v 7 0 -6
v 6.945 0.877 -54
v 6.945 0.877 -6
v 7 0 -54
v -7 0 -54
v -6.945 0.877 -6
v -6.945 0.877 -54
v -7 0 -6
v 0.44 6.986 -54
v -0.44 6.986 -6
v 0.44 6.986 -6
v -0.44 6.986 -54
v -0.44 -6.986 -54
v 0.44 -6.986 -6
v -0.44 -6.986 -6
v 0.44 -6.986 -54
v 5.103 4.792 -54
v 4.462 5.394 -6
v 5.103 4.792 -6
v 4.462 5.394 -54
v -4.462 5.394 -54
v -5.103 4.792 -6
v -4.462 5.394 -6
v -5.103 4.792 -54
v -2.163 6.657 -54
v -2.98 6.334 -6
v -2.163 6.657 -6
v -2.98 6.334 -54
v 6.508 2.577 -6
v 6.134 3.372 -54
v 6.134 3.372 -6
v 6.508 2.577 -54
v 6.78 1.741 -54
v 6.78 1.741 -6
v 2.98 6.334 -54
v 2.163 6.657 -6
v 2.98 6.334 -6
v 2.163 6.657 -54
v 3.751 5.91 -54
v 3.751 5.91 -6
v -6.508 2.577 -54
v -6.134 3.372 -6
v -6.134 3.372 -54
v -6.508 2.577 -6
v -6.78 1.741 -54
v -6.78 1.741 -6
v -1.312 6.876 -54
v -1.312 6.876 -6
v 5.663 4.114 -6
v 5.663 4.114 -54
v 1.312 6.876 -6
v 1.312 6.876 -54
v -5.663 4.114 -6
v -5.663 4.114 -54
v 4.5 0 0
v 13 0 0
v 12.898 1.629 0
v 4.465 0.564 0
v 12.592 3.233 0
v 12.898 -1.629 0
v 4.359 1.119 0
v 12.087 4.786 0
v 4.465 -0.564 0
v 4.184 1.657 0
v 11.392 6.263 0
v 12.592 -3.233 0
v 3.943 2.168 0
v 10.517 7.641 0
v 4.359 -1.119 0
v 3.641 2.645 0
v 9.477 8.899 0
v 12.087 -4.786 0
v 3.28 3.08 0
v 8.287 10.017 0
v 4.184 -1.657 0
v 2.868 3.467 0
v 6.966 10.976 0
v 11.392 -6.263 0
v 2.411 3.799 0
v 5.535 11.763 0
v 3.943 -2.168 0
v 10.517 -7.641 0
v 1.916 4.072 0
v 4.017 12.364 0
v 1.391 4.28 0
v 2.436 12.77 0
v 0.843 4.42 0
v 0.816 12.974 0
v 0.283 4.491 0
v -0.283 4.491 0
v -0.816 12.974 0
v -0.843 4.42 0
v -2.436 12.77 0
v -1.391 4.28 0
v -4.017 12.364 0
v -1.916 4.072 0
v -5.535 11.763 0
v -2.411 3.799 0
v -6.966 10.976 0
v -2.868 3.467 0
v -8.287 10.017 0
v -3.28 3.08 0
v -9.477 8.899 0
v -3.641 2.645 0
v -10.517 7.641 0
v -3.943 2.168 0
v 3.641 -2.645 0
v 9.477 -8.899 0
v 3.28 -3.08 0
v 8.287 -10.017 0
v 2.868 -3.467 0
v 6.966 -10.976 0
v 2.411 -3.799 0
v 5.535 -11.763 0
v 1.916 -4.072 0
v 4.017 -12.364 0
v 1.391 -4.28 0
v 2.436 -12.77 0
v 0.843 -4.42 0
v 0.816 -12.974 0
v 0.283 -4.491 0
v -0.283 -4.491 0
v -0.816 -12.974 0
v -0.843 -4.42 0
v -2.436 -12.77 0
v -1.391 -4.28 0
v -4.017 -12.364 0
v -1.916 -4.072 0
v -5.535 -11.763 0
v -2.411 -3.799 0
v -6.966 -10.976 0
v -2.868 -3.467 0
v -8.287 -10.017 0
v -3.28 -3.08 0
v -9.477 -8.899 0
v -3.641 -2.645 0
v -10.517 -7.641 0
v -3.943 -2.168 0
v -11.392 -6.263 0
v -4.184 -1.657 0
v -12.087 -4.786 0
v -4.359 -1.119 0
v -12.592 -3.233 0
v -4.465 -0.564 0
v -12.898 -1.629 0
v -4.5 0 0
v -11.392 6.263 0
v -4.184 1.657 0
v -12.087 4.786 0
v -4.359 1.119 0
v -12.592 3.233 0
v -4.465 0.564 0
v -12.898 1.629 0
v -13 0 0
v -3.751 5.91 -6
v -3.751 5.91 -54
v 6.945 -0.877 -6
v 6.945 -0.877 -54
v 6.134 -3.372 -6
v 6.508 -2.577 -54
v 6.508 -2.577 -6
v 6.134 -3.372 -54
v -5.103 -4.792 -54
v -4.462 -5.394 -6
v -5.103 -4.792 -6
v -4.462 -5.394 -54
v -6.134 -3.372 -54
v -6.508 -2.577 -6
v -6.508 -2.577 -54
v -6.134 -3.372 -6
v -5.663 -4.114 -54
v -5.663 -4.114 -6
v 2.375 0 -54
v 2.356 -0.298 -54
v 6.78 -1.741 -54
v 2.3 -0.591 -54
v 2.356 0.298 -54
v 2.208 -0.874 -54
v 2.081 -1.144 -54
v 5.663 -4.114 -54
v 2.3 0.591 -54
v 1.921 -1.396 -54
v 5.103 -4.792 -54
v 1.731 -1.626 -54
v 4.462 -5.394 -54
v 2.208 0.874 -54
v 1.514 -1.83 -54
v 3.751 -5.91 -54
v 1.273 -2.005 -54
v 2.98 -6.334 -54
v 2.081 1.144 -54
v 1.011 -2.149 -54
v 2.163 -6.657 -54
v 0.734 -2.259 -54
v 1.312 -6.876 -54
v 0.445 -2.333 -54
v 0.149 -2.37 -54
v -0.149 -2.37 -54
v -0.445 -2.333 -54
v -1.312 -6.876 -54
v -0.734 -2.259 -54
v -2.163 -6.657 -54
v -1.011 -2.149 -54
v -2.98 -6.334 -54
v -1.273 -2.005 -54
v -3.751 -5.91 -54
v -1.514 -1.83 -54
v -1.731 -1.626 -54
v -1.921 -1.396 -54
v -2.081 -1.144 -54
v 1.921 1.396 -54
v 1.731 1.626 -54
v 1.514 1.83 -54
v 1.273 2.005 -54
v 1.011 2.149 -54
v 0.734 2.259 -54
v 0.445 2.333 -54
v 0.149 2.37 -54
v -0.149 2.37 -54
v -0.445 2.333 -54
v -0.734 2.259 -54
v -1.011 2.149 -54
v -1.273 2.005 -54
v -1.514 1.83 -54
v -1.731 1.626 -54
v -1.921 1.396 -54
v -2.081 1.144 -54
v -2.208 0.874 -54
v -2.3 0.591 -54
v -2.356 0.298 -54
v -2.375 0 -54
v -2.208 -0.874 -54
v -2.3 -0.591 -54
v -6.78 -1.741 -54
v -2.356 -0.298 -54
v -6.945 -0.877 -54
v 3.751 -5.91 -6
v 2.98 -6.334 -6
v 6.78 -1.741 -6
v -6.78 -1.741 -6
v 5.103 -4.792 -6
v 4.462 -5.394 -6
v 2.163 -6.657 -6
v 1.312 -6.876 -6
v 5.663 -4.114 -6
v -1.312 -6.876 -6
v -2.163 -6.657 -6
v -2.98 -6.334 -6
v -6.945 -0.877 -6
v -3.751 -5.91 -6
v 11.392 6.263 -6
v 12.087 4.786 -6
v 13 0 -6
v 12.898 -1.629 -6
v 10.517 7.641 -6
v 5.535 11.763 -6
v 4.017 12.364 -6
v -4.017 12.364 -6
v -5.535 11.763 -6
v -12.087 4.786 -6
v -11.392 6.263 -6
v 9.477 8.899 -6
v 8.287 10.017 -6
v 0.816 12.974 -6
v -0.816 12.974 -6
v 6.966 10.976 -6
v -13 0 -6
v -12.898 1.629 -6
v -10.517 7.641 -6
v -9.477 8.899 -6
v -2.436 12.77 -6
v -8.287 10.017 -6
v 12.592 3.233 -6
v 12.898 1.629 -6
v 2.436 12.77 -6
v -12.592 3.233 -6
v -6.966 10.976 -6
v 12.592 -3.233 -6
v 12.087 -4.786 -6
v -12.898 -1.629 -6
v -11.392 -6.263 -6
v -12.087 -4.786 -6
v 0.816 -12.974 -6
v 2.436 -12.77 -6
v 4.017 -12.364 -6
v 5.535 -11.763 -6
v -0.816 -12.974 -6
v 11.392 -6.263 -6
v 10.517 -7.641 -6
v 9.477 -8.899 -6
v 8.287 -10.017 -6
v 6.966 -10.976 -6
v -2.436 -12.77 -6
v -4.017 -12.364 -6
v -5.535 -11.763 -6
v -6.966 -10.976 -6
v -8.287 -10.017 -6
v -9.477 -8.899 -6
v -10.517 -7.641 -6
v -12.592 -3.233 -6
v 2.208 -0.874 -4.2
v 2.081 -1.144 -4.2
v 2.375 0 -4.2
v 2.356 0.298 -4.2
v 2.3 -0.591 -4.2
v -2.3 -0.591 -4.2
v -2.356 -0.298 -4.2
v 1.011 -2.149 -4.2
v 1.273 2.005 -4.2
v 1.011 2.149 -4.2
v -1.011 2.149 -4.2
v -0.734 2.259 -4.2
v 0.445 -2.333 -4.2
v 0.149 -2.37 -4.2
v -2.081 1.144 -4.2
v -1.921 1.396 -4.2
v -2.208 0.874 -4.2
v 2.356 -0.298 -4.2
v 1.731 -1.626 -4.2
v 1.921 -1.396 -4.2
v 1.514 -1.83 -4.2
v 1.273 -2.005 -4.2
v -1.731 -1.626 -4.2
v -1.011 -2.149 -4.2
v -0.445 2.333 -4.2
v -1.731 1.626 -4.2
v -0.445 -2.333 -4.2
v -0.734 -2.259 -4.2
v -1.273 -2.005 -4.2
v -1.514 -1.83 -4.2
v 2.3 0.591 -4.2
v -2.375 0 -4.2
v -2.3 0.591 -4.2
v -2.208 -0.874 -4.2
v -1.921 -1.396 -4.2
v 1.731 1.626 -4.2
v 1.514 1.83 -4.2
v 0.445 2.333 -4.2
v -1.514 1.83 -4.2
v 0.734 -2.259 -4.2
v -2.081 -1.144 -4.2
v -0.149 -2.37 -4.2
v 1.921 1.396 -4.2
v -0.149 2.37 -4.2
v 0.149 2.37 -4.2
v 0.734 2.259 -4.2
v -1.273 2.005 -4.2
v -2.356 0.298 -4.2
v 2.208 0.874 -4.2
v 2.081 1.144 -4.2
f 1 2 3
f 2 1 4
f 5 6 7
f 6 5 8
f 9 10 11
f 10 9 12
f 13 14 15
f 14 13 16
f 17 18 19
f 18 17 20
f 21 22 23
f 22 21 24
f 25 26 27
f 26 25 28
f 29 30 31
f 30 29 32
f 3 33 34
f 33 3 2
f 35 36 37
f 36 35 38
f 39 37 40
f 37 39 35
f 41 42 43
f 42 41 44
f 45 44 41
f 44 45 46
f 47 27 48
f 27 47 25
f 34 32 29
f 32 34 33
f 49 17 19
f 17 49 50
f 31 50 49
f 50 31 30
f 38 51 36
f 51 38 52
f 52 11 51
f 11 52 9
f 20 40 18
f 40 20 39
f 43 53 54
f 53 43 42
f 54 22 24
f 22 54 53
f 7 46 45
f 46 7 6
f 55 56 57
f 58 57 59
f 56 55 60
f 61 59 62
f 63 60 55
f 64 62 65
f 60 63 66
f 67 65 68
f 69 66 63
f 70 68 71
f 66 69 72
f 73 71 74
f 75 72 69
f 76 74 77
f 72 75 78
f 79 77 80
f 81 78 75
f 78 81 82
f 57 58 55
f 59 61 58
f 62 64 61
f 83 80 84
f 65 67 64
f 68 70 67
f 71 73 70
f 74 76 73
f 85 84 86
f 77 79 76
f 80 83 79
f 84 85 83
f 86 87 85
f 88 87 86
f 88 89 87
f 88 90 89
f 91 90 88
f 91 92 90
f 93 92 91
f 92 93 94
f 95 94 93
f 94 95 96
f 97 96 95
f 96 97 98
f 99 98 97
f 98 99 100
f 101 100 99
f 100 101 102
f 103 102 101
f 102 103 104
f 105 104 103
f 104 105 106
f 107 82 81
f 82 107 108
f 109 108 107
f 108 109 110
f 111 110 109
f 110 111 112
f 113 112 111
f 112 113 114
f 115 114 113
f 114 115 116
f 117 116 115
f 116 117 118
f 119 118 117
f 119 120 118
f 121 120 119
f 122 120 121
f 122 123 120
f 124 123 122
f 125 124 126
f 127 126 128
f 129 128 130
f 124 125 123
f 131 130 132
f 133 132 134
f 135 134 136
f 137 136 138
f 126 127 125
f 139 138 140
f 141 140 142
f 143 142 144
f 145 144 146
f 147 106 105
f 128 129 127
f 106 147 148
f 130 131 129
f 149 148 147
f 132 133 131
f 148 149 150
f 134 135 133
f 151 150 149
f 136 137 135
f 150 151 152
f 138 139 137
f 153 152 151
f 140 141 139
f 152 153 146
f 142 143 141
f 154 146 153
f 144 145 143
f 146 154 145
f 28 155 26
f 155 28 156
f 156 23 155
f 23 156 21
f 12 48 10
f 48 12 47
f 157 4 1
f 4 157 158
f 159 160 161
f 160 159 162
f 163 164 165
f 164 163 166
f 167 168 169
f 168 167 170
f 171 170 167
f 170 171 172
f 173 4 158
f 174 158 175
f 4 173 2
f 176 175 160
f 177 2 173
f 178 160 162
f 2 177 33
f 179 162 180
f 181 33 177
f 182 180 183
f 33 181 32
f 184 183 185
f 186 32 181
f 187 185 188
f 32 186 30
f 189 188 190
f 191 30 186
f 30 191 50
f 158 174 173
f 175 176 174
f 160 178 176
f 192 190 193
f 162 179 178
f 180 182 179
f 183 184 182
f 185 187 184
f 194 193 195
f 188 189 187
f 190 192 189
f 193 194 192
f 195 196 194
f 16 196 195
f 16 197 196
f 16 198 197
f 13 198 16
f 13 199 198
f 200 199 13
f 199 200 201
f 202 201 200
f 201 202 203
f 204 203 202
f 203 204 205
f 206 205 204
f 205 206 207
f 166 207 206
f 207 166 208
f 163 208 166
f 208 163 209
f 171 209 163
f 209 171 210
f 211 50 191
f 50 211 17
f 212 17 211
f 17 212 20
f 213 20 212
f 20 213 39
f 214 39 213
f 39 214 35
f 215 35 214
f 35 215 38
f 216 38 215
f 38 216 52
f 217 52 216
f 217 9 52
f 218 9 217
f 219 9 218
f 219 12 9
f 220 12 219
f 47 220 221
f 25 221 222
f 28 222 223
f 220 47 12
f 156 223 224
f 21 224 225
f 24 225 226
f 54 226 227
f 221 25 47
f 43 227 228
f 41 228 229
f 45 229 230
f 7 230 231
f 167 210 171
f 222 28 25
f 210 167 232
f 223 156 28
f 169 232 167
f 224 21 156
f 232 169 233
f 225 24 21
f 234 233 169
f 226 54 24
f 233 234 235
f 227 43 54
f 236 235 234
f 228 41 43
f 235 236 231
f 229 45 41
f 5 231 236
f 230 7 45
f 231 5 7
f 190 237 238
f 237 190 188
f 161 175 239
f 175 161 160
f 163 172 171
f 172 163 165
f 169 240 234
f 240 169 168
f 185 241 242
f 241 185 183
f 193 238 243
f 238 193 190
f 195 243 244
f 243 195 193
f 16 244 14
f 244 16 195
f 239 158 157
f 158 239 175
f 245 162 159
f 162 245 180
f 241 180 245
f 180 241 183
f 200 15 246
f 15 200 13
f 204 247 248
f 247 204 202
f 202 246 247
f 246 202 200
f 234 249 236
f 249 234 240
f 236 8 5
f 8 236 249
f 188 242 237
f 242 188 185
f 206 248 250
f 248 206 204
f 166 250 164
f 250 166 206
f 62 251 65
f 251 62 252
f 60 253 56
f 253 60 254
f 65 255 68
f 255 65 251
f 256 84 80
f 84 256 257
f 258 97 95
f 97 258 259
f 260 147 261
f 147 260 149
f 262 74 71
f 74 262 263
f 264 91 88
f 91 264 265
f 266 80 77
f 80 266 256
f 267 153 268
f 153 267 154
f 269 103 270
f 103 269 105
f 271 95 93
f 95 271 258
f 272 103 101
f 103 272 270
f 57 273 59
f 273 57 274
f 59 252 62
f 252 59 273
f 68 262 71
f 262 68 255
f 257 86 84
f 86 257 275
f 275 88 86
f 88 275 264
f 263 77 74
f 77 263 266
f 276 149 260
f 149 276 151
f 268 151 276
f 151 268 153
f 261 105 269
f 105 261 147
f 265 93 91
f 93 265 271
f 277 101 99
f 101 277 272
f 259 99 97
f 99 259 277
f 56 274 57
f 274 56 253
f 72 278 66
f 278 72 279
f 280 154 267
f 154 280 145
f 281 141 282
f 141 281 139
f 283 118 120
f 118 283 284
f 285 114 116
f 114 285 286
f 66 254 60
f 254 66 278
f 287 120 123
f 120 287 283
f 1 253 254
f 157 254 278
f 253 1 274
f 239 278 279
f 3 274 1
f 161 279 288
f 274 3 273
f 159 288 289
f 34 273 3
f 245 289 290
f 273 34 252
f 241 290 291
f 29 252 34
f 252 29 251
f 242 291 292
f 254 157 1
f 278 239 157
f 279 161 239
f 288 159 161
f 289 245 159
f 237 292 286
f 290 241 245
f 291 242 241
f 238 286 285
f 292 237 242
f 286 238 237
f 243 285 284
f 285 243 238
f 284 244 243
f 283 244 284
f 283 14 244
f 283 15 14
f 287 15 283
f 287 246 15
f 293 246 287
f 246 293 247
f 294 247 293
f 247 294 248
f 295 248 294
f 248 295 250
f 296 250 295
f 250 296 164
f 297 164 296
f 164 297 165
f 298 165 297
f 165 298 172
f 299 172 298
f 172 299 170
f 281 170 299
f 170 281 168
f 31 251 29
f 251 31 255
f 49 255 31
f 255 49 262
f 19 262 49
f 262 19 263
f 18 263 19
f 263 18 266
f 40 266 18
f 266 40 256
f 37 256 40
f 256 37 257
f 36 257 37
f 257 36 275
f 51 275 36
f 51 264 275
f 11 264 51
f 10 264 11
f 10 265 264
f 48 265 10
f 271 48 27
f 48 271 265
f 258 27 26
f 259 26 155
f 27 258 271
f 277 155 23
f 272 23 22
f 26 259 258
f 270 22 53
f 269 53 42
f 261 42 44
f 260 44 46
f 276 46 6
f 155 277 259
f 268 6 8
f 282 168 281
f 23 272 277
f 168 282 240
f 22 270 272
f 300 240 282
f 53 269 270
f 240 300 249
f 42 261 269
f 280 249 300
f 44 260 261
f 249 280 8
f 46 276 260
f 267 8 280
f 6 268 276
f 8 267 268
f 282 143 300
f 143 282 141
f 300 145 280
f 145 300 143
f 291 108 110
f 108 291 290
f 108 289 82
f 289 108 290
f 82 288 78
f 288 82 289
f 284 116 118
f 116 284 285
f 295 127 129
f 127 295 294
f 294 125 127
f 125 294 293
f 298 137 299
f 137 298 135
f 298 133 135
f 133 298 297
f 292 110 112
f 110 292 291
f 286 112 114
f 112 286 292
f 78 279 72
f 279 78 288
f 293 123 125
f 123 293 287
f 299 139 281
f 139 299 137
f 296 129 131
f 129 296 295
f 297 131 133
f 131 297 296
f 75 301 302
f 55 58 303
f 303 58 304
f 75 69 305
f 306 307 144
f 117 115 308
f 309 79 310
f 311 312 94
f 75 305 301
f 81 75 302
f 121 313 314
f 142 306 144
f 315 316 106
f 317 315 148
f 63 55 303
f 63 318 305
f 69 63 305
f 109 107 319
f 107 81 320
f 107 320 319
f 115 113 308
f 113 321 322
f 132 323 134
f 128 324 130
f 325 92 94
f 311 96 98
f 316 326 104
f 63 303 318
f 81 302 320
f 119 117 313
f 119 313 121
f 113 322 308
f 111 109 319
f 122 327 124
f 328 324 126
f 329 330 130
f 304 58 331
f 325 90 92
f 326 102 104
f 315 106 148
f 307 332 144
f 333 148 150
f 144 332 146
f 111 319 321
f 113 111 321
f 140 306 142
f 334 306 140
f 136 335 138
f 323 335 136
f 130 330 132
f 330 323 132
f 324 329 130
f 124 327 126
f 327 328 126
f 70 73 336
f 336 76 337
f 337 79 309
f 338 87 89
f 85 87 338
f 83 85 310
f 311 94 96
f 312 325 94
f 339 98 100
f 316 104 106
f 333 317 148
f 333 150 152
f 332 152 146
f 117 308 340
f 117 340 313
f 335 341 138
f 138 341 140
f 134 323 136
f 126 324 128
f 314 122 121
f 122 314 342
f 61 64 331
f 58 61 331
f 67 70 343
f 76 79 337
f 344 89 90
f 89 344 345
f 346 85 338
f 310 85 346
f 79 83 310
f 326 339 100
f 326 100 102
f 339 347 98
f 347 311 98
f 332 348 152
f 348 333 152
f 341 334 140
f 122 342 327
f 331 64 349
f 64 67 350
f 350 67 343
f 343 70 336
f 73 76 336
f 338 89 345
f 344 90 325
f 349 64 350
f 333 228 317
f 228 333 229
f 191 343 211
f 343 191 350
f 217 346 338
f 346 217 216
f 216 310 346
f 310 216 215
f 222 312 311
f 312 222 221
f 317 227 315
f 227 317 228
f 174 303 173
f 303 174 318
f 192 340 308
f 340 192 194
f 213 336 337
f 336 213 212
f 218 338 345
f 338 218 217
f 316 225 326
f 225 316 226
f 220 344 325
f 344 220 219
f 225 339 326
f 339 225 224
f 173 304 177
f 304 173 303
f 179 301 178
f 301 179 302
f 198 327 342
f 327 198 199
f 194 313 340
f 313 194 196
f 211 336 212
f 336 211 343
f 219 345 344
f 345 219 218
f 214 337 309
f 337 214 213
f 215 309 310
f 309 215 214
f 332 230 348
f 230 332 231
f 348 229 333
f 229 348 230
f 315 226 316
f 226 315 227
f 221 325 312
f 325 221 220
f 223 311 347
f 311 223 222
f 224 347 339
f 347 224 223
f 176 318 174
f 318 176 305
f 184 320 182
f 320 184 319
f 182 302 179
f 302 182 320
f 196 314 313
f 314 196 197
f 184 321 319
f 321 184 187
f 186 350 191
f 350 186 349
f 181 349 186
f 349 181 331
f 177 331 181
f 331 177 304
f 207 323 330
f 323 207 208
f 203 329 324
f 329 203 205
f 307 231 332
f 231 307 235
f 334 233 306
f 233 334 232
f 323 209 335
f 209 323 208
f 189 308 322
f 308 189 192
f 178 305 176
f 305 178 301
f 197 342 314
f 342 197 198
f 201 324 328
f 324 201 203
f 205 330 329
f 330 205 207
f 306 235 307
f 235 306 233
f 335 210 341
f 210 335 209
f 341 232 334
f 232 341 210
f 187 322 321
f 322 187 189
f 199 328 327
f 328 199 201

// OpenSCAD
$fn = 50;


difference() {
	union() {
		translate(v = [0, 0, -54.0000000000]) {
			cylinder(h = 54, r = 7.0000000000);
		}
		translate(v = [0, 0, -6.0000000000]) {
			cylinder(h = 6, r = 13.0000000000);
		}
	}
	union() {
		translate(v = [0, 0, 0]) {
			rotate(a = [0, 0, 0]) {
				difference() {
					union() {
						#translate(v = [0, 0, -54.0000000000]) {
							cylinder(h = 54, r = 2.2500000000);
						}
						#translate(v = [0, 0, -4.2000000000]) {
							cylinder(h = 4.2000000000, r1 = 2.3750000000, r2 = 4.5000000000);
						}
						#translate(v = [0, 0, -54.0000000000]) {
							cylinder(h = 54, r = 2.3750000000);
						}
						#translate(v = [0, 0, -54.0000000000]) {
							cylinder(h = 54, r = 2.2500000000);
						}
					}
					union();
				}
			}
		}
	}
}
